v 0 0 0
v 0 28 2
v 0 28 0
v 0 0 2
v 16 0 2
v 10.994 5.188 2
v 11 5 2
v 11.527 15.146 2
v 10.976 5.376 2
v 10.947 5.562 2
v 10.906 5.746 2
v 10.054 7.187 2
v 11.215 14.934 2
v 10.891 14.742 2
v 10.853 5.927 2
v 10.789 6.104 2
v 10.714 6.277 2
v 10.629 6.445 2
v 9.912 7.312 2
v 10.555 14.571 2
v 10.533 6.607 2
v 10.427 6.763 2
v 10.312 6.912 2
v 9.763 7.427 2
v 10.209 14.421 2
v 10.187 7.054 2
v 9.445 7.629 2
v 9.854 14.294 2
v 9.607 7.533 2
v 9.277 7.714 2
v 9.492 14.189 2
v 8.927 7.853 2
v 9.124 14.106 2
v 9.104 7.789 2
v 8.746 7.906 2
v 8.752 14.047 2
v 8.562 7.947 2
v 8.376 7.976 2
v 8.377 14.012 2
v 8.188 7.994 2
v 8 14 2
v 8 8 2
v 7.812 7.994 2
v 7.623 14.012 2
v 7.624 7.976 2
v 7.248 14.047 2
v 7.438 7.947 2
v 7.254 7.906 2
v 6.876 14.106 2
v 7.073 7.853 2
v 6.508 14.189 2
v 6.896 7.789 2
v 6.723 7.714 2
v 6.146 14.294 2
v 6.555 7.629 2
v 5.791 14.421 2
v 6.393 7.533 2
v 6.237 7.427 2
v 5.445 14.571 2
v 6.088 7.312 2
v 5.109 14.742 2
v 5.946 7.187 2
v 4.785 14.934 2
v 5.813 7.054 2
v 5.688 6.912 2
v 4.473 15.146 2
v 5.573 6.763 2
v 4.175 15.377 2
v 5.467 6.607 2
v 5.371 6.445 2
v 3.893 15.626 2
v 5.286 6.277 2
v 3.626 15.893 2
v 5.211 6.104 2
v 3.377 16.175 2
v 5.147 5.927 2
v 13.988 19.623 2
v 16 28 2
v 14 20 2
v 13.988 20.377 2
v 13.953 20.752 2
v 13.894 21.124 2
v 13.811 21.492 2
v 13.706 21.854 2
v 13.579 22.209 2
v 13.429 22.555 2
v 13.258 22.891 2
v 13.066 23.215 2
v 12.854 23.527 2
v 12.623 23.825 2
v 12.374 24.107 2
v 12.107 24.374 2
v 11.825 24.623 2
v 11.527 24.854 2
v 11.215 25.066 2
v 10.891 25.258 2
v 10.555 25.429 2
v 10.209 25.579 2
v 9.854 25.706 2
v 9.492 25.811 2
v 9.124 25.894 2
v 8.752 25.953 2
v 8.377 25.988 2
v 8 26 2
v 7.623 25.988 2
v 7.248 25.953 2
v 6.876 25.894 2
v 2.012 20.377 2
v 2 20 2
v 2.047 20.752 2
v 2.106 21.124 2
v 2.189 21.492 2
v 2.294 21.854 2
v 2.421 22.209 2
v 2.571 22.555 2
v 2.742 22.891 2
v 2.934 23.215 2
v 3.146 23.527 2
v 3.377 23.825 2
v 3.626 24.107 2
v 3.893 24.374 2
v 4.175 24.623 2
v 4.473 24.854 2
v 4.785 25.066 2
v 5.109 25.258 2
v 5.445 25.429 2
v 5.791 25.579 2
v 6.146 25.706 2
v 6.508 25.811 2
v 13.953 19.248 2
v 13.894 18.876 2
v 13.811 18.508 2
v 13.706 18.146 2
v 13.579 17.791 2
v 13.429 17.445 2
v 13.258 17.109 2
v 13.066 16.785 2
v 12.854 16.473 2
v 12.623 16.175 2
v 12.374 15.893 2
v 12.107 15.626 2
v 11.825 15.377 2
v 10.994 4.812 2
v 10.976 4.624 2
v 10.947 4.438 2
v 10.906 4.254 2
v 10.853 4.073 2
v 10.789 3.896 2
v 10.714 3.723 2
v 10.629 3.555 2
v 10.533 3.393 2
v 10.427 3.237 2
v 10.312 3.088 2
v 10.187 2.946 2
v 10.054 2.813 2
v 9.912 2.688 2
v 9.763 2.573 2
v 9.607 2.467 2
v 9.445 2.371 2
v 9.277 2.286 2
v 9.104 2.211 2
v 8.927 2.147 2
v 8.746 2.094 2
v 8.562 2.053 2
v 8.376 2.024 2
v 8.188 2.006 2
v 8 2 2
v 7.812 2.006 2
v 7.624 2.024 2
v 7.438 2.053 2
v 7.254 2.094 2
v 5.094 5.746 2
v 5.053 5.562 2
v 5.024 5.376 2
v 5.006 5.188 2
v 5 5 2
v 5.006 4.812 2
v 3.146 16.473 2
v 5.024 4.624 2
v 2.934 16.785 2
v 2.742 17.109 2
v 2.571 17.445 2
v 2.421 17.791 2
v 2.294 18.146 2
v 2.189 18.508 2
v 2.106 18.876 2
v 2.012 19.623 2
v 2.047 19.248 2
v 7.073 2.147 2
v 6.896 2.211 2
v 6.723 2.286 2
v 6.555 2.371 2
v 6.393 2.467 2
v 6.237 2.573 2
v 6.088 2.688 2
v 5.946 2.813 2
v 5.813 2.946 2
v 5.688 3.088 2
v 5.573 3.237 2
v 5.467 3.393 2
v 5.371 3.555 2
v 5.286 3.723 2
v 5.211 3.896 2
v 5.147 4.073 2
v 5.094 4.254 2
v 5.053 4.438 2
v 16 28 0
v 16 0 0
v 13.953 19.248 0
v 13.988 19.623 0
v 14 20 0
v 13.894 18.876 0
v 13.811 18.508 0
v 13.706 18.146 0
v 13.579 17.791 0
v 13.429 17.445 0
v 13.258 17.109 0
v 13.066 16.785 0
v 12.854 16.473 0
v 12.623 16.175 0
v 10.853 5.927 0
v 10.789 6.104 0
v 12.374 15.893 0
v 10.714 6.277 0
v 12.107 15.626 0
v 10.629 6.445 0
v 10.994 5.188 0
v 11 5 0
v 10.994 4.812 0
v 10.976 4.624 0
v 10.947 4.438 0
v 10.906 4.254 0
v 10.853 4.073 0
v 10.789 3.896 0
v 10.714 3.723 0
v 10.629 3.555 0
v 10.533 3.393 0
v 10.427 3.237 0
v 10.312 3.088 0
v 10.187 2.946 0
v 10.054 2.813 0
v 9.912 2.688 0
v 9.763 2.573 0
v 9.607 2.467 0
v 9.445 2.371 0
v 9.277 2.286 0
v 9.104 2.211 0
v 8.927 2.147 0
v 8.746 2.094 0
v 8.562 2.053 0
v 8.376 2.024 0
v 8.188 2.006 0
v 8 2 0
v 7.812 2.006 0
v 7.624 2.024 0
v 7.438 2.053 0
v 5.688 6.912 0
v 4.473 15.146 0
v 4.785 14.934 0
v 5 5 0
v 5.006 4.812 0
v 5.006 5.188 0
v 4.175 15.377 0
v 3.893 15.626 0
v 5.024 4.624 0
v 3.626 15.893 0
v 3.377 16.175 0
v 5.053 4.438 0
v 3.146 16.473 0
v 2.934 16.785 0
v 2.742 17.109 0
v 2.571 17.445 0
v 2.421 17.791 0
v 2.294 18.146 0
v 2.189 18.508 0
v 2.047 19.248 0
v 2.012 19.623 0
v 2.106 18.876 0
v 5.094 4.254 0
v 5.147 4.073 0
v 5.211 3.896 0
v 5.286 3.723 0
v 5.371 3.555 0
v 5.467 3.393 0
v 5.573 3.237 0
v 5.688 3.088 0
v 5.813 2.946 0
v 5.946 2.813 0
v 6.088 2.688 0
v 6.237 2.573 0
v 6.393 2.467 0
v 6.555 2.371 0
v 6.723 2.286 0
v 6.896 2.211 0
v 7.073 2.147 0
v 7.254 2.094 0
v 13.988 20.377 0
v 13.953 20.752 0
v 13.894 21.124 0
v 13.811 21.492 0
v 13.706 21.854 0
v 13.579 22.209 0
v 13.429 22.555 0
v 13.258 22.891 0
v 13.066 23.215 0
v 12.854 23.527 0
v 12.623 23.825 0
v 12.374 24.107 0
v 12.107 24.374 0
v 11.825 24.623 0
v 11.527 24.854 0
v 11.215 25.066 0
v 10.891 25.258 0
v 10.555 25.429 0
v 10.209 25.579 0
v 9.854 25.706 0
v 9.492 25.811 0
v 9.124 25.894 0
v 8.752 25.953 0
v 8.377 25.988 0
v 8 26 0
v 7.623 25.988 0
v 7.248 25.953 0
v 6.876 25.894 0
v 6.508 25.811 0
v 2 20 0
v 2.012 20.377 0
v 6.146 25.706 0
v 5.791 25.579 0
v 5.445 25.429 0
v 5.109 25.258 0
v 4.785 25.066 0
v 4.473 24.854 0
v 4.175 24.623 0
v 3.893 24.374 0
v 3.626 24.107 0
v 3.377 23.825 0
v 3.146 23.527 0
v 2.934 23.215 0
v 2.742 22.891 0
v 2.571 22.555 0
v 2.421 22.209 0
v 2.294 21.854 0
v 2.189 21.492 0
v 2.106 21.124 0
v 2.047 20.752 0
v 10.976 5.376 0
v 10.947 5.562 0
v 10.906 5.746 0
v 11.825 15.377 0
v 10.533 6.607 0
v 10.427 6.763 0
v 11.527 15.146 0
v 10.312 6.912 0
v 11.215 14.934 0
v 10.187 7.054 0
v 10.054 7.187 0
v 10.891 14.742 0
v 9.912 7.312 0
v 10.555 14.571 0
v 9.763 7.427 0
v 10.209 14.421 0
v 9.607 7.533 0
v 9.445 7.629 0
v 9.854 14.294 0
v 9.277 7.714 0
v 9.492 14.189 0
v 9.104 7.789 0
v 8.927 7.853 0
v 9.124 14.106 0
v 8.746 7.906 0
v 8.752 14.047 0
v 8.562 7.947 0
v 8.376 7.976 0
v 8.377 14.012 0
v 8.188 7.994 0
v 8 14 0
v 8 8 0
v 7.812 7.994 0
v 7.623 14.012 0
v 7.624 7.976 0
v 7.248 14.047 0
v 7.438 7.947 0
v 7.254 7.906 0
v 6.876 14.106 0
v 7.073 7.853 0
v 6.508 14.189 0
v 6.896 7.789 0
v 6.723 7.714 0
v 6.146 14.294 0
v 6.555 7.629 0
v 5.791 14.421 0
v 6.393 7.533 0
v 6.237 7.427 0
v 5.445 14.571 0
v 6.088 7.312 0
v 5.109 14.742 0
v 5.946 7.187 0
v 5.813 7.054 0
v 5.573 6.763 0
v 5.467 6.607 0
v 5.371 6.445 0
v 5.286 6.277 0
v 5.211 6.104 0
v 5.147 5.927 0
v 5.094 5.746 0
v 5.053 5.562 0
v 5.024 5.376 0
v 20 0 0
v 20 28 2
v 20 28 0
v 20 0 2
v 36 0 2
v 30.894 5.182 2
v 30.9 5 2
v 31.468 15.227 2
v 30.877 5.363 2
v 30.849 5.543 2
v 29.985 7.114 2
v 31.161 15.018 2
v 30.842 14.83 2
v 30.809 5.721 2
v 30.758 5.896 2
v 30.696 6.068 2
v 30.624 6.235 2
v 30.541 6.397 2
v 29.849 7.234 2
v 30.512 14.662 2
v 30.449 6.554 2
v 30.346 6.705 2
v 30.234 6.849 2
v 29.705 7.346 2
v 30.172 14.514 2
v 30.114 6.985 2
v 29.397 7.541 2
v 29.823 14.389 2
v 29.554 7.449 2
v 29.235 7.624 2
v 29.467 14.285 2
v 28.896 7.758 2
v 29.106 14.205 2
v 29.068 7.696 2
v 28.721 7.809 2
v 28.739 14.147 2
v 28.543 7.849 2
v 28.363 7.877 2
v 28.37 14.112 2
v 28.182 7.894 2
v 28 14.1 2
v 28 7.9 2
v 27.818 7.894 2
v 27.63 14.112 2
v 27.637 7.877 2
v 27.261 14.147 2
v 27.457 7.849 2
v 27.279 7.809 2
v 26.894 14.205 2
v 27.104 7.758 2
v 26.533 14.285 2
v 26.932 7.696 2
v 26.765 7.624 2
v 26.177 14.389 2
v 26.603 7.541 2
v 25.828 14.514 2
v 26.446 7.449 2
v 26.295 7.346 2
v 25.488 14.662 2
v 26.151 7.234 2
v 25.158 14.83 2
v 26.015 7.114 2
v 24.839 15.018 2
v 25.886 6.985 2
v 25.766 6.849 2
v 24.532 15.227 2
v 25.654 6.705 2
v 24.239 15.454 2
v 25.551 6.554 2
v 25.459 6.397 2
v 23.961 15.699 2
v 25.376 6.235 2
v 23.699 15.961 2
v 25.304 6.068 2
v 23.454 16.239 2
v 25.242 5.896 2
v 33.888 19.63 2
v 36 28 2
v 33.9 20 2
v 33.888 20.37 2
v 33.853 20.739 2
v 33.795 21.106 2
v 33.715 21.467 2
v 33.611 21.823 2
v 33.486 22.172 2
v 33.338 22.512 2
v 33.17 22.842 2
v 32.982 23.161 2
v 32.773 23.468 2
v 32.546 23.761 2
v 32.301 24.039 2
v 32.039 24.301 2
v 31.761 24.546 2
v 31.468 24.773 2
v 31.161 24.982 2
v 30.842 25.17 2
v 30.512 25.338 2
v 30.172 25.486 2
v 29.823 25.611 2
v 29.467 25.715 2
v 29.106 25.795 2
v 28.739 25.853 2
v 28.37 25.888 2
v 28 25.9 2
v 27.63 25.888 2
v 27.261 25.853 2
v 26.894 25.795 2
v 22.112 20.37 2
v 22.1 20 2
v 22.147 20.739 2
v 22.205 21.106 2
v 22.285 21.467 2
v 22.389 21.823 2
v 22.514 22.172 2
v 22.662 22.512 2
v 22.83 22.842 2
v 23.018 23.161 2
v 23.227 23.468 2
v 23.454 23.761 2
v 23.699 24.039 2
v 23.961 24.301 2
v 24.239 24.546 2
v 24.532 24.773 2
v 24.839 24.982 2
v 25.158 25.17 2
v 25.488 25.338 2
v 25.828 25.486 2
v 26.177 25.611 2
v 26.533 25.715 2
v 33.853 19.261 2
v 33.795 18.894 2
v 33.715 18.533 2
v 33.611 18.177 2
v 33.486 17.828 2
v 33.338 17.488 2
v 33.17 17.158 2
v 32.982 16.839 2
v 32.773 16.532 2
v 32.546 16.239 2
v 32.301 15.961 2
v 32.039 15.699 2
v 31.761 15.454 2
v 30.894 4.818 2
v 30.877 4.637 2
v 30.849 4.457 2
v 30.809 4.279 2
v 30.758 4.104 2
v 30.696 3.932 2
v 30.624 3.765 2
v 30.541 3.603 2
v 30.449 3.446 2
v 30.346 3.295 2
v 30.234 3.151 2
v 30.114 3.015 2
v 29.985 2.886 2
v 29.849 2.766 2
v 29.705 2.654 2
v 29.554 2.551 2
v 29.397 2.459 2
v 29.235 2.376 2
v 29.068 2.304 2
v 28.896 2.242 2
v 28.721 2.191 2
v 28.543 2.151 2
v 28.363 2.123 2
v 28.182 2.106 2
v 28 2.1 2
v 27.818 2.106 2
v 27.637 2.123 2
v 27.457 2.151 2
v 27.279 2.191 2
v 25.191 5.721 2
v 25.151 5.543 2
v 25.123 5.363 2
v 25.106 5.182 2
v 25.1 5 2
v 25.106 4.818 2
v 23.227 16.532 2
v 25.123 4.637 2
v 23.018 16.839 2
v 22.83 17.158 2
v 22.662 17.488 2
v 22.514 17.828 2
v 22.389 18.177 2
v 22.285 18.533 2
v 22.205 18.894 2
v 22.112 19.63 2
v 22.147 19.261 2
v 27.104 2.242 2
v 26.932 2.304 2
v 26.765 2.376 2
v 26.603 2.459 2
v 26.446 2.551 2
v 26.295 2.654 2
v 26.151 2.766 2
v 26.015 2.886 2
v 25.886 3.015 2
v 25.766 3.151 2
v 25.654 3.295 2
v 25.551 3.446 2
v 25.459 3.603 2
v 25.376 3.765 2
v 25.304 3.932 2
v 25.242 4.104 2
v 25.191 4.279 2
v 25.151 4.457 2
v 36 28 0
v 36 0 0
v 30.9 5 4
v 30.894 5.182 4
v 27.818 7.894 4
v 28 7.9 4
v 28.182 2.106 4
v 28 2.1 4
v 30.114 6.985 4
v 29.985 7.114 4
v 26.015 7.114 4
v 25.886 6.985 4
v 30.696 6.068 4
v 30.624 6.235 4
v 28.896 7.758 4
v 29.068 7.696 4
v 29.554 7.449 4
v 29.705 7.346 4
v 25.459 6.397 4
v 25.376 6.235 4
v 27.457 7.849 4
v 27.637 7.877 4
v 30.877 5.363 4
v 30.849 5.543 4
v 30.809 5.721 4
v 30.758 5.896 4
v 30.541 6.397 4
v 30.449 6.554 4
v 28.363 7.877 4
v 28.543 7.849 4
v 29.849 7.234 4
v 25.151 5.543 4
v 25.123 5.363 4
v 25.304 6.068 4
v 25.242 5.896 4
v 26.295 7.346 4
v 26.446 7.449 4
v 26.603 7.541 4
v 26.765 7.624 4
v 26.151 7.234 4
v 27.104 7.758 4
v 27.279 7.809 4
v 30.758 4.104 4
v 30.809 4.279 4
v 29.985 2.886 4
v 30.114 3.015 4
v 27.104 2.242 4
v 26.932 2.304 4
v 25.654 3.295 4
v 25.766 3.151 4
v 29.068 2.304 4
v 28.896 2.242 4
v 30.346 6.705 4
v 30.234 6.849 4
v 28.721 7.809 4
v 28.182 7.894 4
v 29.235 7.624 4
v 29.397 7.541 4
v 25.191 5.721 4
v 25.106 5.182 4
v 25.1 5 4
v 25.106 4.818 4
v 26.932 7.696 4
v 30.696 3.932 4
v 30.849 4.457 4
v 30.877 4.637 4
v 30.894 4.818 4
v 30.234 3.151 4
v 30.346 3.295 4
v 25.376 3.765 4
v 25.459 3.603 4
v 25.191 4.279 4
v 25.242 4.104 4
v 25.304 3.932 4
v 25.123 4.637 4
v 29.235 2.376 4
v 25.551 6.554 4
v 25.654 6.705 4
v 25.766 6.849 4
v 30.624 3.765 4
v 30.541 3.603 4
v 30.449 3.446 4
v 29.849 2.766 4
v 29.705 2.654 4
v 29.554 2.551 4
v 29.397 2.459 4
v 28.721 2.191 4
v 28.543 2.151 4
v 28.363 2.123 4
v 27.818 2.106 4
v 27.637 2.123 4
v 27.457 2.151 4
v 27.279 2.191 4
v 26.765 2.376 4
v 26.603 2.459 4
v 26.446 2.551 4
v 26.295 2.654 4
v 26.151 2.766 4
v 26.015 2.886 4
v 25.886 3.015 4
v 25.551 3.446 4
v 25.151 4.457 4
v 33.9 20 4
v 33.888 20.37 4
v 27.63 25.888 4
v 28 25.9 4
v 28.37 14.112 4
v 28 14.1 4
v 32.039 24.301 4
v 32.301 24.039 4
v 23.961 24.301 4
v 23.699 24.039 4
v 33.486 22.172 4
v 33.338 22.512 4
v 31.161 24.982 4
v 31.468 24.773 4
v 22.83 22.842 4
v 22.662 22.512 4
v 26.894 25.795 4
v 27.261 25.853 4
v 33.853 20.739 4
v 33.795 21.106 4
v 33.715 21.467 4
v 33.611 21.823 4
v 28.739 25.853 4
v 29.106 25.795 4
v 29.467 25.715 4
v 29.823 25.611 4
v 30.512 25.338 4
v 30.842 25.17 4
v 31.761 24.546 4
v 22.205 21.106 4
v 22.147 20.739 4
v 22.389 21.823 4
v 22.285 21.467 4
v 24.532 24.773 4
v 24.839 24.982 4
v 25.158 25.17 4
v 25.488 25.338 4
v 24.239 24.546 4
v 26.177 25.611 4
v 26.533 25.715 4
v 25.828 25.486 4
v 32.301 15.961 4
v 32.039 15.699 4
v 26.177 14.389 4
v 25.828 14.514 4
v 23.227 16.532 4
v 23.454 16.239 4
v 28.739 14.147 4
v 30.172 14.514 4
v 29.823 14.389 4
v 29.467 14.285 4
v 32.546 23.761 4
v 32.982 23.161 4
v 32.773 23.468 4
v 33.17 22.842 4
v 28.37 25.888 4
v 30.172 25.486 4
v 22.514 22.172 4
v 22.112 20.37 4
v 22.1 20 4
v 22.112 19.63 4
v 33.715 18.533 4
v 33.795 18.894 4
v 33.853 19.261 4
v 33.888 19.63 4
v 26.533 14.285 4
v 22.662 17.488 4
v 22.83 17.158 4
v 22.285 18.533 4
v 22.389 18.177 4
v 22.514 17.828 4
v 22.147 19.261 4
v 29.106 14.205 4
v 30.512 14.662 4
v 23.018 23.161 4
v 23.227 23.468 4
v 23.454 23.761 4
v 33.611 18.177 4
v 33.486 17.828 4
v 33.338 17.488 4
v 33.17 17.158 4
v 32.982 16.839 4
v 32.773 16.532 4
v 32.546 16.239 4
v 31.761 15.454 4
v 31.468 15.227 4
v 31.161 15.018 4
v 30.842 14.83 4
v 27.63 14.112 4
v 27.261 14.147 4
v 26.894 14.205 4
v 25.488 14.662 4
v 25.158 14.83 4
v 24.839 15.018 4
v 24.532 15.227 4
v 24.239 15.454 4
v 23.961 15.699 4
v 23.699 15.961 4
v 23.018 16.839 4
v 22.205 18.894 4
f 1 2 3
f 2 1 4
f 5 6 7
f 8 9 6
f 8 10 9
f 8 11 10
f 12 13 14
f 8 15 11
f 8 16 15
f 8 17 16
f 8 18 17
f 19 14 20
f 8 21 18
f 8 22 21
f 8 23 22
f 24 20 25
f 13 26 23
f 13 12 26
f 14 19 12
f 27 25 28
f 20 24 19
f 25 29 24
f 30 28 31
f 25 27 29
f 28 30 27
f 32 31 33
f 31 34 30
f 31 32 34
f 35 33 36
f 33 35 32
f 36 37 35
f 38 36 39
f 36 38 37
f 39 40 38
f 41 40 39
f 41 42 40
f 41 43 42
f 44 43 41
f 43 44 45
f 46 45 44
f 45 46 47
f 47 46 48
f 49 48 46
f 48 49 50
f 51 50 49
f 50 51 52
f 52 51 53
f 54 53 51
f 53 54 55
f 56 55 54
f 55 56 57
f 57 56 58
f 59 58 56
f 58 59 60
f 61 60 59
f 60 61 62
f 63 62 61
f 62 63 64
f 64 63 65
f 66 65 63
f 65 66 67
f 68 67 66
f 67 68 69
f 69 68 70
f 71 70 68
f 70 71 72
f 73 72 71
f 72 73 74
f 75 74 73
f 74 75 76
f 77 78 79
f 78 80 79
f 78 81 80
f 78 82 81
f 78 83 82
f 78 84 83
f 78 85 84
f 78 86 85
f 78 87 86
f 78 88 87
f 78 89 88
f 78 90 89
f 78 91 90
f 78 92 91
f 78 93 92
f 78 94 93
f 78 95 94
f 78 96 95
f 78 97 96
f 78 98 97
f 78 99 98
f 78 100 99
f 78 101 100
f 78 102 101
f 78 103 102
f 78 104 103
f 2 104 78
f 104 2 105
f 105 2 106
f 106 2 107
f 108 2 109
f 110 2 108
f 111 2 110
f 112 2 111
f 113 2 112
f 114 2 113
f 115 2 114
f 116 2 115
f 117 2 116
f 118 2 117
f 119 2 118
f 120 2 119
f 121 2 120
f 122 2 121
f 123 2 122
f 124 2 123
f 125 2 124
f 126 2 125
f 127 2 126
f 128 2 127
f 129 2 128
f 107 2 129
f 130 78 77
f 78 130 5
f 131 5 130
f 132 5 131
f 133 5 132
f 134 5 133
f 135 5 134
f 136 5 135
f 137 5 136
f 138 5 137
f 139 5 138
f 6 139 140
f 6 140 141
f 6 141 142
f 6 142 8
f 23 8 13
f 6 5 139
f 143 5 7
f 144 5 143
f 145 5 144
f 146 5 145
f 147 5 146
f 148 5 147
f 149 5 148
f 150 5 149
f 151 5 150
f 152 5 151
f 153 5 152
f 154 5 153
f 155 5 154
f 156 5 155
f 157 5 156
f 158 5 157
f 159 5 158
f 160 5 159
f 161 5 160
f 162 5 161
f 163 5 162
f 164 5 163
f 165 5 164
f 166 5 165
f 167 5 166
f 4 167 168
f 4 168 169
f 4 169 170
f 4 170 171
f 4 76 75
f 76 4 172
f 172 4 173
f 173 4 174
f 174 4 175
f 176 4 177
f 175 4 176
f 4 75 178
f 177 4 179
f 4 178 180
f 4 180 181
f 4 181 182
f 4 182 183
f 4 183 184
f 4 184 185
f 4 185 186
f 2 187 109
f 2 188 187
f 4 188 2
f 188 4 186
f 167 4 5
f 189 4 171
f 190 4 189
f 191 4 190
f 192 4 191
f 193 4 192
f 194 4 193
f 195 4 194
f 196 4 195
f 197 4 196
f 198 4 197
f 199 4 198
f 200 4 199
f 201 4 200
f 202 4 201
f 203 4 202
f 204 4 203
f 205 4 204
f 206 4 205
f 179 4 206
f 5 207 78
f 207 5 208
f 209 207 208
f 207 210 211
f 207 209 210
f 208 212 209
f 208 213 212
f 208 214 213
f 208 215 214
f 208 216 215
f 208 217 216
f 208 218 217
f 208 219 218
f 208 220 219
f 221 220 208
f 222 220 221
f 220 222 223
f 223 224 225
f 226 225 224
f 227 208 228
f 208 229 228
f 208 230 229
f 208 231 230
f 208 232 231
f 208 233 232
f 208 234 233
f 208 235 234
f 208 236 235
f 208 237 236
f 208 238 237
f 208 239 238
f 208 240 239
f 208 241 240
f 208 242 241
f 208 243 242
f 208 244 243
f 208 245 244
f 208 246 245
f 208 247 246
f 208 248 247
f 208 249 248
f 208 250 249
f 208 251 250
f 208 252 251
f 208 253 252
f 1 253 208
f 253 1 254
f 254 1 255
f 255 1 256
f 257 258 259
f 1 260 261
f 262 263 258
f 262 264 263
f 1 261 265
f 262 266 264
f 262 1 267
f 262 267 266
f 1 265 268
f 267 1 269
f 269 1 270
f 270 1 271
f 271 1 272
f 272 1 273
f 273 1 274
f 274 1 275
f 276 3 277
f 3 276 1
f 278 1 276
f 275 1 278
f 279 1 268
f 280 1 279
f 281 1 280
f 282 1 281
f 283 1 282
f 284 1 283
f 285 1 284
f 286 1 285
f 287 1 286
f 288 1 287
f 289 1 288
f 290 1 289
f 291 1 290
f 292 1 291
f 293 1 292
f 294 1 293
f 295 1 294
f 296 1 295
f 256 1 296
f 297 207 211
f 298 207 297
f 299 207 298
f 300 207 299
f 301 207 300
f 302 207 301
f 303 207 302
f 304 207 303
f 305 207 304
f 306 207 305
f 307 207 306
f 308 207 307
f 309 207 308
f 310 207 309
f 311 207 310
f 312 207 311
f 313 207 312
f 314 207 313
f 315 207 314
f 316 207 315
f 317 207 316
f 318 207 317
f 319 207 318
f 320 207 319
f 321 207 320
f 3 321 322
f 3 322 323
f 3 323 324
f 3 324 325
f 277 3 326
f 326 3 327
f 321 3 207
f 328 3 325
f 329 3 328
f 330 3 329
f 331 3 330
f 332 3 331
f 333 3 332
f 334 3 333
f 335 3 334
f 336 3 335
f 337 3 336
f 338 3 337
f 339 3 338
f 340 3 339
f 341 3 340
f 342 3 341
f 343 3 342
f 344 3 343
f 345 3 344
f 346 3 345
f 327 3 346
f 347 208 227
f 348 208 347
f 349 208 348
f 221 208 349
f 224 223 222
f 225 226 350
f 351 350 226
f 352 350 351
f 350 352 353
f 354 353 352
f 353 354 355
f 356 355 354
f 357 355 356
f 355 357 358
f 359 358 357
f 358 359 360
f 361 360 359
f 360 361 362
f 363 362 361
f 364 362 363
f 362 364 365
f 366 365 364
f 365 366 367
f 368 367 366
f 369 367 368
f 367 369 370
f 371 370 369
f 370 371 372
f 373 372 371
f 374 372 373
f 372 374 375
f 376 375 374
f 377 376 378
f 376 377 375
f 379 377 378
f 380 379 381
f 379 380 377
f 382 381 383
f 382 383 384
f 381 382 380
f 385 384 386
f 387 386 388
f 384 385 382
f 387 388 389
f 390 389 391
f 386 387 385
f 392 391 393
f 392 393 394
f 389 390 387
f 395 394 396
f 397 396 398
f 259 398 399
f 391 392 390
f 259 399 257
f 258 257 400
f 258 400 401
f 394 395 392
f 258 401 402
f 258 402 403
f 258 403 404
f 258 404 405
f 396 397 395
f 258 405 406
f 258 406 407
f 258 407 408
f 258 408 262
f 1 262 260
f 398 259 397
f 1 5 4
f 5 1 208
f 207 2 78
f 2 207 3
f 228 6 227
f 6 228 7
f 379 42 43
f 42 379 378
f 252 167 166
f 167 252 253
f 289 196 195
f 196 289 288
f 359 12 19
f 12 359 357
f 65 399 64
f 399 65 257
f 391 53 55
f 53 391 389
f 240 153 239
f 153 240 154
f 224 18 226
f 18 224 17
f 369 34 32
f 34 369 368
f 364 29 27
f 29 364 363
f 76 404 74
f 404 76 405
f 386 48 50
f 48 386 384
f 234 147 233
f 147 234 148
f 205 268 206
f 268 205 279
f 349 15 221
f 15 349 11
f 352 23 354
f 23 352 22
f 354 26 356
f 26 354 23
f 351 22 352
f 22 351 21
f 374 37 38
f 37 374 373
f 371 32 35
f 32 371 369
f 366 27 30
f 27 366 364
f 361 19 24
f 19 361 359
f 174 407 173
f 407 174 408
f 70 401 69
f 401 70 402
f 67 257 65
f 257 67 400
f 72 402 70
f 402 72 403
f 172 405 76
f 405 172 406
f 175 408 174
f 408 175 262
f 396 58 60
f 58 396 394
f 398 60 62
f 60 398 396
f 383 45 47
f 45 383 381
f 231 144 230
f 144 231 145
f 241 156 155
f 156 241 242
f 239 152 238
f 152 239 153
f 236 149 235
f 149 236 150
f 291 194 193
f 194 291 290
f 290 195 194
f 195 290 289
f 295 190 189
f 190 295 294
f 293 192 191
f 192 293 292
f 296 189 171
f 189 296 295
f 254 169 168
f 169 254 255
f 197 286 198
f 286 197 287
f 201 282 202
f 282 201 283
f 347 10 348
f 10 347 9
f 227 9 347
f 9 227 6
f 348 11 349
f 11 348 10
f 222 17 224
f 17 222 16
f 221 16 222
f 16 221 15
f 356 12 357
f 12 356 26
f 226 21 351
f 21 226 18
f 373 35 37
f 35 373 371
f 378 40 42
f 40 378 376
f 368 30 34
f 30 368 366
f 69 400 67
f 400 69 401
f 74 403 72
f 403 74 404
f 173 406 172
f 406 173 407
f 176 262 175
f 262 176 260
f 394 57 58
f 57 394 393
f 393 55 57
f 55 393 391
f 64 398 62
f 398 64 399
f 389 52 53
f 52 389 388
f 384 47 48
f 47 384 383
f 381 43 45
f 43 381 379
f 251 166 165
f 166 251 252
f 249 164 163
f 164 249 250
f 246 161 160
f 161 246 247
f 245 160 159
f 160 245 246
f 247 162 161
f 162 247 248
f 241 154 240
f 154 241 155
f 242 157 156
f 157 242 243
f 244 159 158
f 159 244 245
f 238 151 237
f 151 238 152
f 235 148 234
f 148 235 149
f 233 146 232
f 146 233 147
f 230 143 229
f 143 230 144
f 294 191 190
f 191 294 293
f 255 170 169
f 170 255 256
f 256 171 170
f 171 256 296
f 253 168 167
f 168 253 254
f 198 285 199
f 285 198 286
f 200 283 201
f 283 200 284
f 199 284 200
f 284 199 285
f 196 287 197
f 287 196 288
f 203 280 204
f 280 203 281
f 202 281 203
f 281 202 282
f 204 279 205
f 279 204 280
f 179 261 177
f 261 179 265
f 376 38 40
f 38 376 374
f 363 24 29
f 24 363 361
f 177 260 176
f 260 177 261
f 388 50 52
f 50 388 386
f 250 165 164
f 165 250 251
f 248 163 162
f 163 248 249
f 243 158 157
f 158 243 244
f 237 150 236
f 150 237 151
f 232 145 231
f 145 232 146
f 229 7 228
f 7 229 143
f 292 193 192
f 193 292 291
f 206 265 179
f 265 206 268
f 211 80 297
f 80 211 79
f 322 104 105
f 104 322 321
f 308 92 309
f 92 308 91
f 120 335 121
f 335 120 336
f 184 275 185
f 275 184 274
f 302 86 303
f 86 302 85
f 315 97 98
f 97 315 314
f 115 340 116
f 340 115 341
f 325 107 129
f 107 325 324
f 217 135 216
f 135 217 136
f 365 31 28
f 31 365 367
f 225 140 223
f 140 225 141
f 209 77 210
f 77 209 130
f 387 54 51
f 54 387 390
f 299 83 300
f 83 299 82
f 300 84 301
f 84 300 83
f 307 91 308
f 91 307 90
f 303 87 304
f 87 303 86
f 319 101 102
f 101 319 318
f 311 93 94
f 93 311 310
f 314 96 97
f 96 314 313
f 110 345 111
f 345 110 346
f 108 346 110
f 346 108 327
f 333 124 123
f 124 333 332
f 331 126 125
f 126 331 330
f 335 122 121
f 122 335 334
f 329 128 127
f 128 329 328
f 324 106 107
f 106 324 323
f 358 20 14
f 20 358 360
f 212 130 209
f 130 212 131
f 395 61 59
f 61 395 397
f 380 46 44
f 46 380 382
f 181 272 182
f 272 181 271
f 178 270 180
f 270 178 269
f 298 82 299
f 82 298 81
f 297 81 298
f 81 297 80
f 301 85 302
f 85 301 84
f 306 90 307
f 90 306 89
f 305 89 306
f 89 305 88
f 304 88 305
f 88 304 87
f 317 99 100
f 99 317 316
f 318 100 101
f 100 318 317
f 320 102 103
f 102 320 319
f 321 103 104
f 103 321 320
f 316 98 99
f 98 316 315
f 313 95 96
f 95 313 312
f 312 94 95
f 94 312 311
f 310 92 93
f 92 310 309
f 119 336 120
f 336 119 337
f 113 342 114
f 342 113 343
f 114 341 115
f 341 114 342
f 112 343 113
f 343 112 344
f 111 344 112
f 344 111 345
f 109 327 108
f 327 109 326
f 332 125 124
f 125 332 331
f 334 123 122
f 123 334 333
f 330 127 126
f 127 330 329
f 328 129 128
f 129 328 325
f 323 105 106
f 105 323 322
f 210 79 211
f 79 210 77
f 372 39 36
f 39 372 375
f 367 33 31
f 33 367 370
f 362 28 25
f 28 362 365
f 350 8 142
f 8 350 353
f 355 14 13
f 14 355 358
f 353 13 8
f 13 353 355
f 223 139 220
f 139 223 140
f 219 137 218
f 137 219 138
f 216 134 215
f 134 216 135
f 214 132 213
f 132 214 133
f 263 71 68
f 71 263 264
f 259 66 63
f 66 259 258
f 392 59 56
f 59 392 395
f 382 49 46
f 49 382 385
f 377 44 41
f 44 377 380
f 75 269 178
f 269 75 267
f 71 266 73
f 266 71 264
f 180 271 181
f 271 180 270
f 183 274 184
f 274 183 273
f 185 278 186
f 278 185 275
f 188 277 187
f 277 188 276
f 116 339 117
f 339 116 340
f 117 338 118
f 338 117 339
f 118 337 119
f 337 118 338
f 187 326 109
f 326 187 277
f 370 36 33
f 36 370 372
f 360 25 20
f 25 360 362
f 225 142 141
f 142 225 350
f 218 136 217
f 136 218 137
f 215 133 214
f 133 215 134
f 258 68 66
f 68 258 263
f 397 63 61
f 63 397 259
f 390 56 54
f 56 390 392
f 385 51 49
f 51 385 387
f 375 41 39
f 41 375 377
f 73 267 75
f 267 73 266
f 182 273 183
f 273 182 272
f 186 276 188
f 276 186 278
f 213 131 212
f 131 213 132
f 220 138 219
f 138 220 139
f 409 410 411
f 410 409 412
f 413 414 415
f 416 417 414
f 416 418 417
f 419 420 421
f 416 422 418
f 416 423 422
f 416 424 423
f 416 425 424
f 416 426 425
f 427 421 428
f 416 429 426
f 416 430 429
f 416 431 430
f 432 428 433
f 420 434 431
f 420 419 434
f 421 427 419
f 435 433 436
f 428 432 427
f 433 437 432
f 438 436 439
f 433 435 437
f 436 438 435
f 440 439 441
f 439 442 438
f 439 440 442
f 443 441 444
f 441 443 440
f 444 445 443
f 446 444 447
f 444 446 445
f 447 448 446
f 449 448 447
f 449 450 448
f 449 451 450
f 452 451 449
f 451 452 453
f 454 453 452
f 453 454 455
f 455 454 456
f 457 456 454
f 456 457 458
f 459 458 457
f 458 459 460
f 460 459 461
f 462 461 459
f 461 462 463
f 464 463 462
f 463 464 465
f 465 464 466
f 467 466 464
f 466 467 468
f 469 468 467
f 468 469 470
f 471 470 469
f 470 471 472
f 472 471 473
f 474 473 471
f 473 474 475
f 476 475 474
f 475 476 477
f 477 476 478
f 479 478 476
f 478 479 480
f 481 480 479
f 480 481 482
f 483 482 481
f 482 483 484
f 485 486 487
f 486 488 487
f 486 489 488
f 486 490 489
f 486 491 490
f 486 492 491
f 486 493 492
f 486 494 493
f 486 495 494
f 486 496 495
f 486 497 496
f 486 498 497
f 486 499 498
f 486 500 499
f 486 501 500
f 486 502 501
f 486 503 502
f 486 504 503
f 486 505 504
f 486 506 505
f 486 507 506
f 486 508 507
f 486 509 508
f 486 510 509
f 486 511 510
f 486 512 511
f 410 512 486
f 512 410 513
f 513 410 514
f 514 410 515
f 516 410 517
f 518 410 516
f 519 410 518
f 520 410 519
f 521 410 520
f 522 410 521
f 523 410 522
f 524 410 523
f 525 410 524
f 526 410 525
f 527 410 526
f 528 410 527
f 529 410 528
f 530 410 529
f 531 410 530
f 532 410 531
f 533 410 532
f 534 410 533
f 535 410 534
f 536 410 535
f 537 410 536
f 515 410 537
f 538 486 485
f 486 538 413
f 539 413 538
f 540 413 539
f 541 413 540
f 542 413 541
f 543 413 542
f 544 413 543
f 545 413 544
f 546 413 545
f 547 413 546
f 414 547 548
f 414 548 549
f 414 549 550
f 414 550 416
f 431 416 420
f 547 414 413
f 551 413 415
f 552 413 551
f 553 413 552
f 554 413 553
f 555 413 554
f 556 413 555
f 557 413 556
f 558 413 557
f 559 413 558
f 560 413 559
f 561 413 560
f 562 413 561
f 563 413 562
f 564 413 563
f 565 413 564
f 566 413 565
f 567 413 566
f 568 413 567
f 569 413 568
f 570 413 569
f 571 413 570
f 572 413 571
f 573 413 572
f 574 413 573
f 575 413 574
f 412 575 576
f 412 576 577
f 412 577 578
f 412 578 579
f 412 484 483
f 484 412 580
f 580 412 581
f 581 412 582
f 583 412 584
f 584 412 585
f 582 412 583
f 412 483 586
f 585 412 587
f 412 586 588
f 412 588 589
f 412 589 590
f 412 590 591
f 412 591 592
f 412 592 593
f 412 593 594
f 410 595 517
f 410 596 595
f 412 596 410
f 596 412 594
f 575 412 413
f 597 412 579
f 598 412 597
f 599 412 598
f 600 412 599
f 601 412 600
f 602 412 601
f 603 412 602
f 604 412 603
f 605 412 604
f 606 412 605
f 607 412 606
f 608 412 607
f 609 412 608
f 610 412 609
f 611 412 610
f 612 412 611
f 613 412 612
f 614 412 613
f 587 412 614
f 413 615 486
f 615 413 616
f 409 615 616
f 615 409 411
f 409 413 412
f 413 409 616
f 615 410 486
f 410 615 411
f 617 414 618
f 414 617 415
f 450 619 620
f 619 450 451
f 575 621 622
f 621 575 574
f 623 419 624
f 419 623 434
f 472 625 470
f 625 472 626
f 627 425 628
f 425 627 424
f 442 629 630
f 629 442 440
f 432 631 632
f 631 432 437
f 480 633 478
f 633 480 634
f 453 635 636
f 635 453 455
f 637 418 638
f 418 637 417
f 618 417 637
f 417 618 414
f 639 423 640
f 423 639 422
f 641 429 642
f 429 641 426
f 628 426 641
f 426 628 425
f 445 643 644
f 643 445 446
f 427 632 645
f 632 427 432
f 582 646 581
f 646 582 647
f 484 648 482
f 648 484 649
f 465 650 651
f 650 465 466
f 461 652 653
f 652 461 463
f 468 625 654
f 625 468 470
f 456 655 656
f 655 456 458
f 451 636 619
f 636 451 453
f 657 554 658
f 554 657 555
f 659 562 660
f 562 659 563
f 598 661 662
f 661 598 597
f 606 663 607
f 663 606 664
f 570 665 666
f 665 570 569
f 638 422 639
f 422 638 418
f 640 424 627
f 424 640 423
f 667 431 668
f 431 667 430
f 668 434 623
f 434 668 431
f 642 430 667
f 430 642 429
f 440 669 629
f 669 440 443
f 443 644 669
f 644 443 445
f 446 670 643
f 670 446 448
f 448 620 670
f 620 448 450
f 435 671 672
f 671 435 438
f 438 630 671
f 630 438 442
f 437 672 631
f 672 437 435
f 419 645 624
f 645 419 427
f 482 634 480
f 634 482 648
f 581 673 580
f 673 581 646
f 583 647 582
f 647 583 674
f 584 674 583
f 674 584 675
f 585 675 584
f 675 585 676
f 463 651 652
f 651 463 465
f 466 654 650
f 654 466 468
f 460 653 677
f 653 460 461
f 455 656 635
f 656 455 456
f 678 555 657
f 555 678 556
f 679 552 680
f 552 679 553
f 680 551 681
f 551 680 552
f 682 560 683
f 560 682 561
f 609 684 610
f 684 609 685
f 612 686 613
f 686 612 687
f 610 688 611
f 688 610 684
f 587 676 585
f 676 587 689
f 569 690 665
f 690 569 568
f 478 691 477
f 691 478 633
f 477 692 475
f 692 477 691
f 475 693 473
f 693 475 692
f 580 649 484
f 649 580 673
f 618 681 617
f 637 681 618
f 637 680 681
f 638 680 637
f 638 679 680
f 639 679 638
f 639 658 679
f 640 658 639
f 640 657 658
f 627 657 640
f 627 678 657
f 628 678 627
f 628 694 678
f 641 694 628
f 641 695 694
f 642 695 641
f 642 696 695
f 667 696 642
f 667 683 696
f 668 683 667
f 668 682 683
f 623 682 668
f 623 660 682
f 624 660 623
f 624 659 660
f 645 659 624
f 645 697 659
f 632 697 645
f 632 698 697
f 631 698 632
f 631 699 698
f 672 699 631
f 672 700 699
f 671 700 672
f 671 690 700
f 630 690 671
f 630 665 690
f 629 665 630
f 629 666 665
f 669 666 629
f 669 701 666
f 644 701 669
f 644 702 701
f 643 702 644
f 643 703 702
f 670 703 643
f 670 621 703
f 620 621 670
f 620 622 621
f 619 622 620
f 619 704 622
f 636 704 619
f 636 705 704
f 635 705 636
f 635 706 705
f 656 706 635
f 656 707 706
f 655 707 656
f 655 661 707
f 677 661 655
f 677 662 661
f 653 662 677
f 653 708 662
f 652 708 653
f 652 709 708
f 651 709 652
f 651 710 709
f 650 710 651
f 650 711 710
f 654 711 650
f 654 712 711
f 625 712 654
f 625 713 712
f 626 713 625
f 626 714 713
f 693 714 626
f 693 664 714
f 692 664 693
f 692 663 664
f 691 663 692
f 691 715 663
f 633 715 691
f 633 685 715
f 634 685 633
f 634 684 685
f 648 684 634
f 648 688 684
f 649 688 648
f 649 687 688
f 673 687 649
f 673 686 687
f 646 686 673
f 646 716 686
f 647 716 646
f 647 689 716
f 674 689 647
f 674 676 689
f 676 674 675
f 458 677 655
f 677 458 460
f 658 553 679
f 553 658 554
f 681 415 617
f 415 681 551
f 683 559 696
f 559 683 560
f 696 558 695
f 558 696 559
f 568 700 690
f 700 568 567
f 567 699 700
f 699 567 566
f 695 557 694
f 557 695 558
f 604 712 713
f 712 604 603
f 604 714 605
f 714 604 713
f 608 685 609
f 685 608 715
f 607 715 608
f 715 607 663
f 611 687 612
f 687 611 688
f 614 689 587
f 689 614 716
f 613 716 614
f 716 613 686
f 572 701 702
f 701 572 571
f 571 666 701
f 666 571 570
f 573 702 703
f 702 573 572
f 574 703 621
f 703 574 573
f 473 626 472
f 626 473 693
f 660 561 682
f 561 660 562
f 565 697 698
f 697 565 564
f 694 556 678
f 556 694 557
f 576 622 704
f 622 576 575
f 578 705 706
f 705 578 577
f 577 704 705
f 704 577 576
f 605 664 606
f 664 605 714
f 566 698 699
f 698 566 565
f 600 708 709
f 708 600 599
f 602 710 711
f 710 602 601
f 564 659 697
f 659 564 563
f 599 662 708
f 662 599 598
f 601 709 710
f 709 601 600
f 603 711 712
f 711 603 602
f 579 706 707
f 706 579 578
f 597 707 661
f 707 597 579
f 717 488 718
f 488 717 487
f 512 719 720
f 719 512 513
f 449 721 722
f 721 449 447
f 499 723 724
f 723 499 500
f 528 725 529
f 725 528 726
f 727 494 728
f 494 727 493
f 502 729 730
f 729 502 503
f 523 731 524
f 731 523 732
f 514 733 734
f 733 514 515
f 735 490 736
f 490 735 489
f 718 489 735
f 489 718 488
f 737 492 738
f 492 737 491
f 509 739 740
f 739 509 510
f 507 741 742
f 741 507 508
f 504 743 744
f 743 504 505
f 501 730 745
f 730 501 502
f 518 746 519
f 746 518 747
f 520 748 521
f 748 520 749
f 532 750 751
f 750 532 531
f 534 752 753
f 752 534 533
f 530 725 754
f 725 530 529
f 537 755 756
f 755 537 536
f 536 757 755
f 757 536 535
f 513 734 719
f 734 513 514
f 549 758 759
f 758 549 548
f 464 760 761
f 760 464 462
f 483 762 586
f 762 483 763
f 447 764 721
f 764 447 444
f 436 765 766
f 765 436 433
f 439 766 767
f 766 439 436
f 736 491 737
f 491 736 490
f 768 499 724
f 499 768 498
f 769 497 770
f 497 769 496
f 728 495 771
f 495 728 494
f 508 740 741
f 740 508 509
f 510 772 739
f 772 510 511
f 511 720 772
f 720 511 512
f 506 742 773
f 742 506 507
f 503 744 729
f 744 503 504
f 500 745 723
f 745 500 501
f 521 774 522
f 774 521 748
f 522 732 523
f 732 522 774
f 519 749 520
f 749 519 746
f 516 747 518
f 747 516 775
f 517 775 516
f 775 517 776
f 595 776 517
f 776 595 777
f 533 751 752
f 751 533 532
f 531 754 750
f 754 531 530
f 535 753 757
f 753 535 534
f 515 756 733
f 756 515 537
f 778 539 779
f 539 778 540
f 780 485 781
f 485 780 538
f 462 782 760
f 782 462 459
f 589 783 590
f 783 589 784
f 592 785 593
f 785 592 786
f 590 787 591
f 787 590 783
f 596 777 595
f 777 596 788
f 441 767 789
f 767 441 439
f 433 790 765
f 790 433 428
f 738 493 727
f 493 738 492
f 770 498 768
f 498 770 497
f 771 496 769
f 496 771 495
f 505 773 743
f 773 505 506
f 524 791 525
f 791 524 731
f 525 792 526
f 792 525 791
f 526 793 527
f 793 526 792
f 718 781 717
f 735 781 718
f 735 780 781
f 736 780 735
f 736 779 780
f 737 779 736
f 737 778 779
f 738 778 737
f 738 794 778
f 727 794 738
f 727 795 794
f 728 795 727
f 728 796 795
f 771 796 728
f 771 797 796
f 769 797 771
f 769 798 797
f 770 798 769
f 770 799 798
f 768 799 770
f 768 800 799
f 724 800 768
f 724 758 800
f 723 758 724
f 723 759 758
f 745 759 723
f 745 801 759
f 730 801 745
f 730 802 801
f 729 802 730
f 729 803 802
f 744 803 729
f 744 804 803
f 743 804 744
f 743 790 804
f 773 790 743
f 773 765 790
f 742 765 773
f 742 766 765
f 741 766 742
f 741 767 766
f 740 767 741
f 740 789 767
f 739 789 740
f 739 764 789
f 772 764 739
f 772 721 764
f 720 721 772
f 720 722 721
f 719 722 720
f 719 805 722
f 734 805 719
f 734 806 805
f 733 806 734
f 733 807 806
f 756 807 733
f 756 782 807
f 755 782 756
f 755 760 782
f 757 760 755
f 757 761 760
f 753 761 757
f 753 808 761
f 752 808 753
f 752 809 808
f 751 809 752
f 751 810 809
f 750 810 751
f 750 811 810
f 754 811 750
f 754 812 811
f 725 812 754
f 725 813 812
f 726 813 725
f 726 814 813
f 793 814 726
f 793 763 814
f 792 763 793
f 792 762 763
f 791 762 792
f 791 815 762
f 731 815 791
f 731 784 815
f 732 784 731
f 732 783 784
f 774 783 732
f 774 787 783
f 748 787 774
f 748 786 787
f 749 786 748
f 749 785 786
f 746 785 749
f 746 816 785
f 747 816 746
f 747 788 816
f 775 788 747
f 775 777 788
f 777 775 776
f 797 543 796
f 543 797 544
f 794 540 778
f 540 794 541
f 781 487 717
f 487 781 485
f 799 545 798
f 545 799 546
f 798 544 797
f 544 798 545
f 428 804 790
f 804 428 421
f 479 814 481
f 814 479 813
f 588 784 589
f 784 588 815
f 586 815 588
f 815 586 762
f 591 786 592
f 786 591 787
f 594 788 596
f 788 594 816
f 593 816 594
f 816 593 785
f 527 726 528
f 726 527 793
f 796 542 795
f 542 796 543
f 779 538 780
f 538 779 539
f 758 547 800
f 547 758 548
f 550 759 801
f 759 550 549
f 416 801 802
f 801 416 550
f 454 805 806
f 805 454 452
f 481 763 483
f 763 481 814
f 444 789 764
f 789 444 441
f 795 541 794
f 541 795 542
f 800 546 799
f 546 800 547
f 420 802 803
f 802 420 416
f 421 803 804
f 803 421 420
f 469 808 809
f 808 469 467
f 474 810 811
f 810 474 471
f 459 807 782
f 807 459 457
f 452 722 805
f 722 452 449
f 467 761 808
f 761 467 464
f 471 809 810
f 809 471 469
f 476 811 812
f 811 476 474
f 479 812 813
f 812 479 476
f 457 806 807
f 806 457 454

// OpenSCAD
$fn=100;

difference() {
    cube([16,28,2]);
    
    translate([8,5,-1]) cylinder(4,3,3);
    translate([8,20,-1]) cylinder(4,6,6);
}

translate([20,0,0])
union() {
    cube([16,28,2]);
    
    translate([8,5,0]) cylinder(4,2.9,2.9);
    translate([8,20,0]) cylinder(4,5.9,5.9);
}
